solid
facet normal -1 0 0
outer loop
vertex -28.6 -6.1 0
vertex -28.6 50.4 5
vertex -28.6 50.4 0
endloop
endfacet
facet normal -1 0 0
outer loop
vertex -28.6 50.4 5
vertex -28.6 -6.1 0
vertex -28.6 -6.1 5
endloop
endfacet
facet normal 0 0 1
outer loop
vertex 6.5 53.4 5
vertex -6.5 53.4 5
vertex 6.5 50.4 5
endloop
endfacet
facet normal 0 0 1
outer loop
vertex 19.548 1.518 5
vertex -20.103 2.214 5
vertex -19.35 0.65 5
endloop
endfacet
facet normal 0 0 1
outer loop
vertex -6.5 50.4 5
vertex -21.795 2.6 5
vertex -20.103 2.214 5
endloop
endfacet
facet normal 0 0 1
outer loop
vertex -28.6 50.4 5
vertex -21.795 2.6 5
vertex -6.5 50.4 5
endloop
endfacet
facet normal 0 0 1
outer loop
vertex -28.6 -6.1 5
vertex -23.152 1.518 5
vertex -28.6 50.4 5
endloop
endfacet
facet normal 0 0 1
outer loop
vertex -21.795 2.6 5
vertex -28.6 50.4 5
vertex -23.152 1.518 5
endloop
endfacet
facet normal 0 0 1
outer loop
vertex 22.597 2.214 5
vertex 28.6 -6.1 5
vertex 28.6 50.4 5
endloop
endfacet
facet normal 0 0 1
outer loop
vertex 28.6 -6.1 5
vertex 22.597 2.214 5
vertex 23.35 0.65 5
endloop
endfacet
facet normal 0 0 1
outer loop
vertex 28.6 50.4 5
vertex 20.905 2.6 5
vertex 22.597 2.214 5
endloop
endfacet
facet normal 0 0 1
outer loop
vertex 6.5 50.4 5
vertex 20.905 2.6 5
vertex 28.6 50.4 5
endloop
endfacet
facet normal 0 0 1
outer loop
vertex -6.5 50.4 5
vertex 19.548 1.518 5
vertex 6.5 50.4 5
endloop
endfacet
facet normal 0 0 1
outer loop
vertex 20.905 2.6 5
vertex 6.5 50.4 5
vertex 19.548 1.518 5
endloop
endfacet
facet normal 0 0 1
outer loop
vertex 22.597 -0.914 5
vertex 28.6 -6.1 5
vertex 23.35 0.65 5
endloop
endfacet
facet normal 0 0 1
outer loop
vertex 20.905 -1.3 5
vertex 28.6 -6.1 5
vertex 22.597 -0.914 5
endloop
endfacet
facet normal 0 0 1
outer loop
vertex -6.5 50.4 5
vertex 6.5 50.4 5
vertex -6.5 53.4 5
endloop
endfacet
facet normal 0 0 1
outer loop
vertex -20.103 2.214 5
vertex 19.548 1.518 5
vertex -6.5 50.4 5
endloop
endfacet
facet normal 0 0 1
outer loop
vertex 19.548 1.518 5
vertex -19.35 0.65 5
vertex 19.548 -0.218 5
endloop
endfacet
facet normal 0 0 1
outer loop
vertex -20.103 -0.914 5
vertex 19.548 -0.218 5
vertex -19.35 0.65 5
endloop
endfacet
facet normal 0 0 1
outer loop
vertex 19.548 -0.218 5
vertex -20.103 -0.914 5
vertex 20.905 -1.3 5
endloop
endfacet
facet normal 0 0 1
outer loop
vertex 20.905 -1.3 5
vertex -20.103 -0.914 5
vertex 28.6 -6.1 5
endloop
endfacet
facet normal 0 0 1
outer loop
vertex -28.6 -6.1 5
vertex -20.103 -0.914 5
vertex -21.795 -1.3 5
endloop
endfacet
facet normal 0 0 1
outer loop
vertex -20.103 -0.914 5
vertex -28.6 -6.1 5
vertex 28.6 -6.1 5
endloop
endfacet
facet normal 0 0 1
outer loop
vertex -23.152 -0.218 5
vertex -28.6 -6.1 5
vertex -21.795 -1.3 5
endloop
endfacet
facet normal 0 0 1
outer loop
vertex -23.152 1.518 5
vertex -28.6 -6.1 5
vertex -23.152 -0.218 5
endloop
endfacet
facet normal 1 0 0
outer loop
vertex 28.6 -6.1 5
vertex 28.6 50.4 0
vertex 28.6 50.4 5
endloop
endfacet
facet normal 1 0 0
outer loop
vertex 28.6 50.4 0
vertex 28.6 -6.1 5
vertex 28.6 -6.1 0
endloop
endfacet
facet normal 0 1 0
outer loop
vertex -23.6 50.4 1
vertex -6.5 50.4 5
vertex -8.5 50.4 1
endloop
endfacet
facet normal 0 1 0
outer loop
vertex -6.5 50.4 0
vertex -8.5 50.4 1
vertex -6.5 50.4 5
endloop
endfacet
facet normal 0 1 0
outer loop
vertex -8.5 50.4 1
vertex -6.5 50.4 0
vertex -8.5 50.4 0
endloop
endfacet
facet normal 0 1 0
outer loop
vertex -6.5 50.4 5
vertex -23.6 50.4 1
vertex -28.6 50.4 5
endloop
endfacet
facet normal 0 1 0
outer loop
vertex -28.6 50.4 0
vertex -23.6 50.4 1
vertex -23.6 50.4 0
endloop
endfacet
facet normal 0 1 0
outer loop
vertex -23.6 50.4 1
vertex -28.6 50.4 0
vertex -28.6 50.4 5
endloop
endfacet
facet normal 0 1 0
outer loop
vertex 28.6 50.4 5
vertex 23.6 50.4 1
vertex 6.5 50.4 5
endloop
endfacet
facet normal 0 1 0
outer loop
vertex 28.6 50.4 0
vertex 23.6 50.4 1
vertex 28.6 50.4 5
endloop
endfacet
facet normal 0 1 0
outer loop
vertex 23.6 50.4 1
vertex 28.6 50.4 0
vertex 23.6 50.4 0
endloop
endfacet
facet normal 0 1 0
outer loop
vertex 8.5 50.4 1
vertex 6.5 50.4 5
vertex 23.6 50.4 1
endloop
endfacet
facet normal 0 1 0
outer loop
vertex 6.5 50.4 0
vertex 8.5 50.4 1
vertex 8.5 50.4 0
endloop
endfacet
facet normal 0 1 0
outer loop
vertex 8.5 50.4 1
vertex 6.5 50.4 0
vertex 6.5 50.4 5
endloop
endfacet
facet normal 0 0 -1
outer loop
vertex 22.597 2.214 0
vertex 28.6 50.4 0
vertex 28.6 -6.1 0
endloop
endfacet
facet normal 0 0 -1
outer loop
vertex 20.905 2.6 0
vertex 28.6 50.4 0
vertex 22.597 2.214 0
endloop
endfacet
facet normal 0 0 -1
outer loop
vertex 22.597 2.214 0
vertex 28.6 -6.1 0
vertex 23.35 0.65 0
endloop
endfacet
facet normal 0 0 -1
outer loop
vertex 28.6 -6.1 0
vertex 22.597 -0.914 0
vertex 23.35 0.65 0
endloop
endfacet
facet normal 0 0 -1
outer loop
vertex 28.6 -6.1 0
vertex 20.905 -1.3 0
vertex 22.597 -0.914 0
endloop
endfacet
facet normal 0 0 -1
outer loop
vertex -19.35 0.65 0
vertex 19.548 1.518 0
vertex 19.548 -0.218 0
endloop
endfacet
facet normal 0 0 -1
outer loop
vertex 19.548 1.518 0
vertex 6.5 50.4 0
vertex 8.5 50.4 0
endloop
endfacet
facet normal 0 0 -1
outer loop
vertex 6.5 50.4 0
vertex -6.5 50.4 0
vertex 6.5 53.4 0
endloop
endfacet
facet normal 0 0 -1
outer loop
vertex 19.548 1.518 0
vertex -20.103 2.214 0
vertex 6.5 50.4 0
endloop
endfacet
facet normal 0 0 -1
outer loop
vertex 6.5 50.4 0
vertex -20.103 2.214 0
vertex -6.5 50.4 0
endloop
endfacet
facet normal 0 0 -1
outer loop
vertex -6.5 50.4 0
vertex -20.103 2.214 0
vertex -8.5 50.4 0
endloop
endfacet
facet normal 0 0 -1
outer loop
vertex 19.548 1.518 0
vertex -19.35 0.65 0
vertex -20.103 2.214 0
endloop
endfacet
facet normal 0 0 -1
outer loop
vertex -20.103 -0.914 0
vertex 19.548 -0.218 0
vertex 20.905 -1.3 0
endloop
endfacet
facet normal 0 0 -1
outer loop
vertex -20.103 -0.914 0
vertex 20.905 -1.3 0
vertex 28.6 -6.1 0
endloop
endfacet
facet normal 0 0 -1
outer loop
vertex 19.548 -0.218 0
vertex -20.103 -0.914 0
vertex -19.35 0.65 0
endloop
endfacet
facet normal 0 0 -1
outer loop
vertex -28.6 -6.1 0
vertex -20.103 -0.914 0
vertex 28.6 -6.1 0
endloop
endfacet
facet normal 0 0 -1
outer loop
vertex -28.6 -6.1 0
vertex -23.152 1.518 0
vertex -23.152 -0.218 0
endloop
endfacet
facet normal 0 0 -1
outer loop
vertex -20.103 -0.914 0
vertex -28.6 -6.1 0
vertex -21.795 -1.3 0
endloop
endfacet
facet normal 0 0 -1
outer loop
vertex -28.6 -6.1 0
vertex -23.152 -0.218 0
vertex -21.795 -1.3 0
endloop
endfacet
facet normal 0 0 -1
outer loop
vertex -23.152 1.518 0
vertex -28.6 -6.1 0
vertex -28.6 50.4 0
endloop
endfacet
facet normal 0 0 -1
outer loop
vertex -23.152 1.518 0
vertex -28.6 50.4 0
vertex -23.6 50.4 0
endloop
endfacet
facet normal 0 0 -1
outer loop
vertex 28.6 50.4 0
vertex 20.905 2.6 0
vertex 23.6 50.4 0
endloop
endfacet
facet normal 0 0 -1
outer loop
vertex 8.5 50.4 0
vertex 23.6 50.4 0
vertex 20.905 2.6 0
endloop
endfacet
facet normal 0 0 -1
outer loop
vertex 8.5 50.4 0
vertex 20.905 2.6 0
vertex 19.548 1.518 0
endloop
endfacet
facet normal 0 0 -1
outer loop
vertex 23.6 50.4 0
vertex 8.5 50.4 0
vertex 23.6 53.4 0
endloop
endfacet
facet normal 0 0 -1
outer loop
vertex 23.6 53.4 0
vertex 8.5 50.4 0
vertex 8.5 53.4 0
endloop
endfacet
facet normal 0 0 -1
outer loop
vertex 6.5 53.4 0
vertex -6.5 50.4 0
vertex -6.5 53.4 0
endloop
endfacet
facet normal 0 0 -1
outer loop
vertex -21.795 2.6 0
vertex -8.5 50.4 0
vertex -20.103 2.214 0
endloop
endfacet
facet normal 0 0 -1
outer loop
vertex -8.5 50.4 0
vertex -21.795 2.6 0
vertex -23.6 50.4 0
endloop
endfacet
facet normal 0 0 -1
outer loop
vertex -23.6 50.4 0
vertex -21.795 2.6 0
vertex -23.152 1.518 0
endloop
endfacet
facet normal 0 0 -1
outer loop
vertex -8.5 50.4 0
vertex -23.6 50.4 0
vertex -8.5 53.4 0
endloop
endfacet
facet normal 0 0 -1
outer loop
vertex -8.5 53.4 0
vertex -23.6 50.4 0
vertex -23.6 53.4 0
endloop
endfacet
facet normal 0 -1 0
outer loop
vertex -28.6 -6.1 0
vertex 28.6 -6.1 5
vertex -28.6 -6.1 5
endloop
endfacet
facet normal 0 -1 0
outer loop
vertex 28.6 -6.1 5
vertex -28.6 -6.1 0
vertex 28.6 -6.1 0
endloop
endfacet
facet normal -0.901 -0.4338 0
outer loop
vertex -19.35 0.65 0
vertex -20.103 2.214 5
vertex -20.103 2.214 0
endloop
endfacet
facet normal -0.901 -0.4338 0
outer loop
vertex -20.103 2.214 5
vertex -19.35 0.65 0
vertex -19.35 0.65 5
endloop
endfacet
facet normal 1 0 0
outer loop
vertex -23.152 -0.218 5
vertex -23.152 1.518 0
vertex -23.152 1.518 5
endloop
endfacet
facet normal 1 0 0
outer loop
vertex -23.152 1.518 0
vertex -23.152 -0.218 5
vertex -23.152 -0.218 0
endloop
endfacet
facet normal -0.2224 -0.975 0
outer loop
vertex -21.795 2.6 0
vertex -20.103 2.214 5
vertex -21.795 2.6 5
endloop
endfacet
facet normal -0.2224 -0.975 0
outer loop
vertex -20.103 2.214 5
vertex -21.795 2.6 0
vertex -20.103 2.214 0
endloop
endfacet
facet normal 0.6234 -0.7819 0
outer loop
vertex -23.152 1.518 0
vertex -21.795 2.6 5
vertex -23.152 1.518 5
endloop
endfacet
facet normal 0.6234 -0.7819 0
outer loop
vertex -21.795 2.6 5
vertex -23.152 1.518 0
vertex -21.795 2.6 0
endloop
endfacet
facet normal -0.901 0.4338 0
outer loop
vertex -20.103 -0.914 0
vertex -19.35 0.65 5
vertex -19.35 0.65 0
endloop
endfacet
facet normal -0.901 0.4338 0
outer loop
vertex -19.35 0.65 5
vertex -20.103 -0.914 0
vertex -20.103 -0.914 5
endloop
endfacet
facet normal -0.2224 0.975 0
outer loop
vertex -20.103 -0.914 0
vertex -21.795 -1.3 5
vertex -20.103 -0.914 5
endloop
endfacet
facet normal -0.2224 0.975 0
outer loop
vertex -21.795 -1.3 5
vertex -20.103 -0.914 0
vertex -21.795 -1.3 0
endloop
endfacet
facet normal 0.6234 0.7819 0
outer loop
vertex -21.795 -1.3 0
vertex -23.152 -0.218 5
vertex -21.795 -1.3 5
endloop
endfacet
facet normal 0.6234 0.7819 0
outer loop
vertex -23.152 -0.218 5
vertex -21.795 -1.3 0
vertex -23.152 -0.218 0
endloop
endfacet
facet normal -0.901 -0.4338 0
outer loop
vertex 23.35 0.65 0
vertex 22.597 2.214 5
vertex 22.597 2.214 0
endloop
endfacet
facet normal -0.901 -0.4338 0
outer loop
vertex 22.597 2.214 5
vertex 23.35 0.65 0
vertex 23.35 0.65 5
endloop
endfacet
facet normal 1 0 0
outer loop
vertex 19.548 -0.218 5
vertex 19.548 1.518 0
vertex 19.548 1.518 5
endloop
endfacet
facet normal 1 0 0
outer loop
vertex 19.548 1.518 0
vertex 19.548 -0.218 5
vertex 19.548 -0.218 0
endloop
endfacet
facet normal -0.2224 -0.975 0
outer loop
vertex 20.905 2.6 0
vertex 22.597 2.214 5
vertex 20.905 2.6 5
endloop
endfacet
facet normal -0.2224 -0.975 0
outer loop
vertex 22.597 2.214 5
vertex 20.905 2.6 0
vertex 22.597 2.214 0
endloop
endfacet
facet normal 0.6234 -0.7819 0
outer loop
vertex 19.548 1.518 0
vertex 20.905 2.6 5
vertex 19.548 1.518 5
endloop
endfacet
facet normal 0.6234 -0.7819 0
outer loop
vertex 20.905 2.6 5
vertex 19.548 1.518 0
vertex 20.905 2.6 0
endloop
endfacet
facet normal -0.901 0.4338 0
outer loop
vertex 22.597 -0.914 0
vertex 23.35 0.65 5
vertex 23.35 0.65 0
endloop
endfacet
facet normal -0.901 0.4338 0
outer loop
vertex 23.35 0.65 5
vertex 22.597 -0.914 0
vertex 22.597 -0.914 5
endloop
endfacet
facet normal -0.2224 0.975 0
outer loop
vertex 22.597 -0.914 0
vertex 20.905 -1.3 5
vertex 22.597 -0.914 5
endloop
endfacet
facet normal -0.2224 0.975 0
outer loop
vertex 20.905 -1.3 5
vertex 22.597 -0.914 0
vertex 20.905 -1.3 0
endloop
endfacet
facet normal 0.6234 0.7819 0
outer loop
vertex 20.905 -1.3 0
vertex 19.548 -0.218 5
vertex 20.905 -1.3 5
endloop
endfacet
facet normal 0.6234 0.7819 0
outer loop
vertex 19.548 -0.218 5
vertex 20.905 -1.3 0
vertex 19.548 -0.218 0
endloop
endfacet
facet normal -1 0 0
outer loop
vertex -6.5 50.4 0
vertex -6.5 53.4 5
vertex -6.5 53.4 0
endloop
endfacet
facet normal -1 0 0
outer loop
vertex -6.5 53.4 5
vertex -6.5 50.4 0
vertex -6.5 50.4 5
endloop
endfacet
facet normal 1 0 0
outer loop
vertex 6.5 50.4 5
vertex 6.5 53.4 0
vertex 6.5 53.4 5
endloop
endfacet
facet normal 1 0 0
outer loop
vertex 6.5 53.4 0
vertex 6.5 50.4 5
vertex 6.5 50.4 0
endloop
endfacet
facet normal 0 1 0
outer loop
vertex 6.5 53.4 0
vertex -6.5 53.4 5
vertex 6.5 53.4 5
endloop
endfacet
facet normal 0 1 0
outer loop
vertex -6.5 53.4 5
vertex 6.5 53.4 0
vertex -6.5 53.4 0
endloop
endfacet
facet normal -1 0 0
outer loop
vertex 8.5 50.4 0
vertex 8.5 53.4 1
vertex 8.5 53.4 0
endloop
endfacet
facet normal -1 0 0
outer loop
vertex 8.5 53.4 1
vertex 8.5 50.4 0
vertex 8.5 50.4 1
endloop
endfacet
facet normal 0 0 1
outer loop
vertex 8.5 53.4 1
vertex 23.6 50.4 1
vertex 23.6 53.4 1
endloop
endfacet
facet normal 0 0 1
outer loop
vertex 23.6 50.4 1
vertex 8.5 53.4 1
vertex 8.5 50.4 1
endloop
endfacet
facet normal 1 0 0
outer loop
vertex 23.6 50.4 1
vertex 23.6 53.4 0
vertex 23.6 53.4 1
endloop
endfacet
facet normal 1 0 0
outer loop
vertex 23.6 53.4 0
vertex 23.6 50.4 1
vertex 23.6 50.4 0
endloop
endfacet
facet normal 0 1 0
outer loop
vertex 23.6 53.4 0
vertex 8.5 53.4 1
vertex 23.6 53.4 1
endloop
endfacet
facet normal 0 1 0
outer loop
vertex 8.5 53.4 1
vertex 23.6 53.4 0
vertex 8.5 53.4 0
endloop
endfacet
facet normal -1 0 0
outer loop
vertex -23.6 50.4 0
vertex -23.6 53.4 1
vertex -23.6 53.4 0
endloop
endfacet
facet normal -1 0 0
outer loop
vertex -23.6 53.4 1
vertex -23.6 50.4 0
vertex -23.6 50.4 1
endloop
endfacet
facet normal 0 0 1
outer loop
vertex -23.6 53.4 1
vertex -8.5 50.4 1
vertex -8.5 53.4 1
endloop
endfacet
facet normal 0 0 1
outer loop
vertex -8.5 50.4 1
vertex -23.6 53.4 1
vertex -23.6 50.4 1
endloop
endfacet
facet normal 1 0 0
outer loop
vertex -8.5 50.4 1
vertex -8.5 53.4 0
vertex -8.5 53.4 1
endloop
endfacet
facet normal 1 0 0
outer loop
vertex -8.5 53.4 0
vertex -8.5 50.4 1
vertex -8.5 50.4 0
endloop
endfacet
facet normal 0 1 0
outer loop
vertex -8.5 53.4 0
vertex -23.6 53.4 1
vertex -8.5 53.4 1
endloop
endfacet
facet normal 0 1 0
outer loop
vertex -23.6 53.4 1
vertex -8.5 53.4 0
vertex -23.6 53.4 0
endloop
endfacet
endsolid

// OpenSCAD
front_post_hole_offset = 24.7;
front_post_to_pcb_front = 3.6;
front_to_rear_post_hole_offset = 30.5;

panel_depth = 3;  // The width of the case front/back/sides
panel_offset = max(0.5, panel_depth-3);
post_height = 2.5;

// Constants associated with the case lid
rear_tab_height = 2;  // The height of the tab that will lock the lid in place
rear_tab_height_offset = 1; // How much additional clearance to give the tab
tab_side_clearance = 2; // How much clearance to give each side of the tab

pcb_width = 31.6; // Width of the actual PCB (should be greater than front_post_hole_offset)
pcb_depth = 38+6; // Depth of the actual PCB (should be greater than front_to_rear_post_hole_offset);
pcb_height = 1.6; // Height of the PCB fiberglass (part of the RJ-11 offset)

rj_11_width = 17; // Width of the RJ-11 jack (for the hole in the front of the case)
rj_11_height = 13.5+.3; // Height of the RJ-11 jack (for the hole in the front of the case)

exit_hole_width = 13; // Width of the exit hole (in the back of the case)

case_interior_width = pcb_width + 19.6; // Giving 10mm of clearance on either side for wiring, etc. 
case_interior_depth = pcb_depth + 10; // All additional depth is added to the back
case_interior_height = post_height+rj_11_height+pcb_height+5; // This should be equal to post_height + enough room for the RJ-11 jack at a minimum

zip_tie_width = 3.5;


////// These are defined based on the above. Breaking out to make it more explicit what is happening below)
case_exterior_width = case_interior_width + (panel_depth * 2);
case_exterior_depth = case_interior_depth + (panel_depth * 2);
case_exterior_height = case_interior_height + panel_depth;

// Related to the case lid
case_lid_depth = rear_tab_height + rear_tab_height_offset + 2;
tab_width = (case_exterior_width - exit_hole_width - (2*panel_depth) - (4*tab_side_clearance))/2;


// Related to the "nut slot" posts
nut_width = 5.5;
nut_height = 2.5;
nut_post_width = nut_width + 3;
nut_hole_height = nut_height + 1.2;
nut_hole_width = nut_width + 1;
nut_hole_depth = (nut_post_width-nut_width)/2 + nut_width;
nut_hole_height_loc = case_exterior_height - 3 - nut_hole_height;
nut_hole_width_loc = (nut_post_width - nut_hole_width)/2;



module make_nut_post() {
        translate([nut_post_width/2,nut_post_width/2,-1]) cylinder(r=2, h=3*case_lid_depth);
}


to_back_of_lid = -(front_post_to_pcb_front+panel_depth)+0.5 +case_exterior_depth-panel_depth-0.5;
difference () {
    translate([-case_exterior_width/2,-(front_post_to_pcb_front+panel_depth)+0.5,0]) cube([case_exterior_width, case_exterior_depth-panel_depth-0.5, case_lid_depth]);
    translate([-(case_exterior_width/2)+panel_depth,-(front_post_to_pcb_front),-0.1]) make_nut_post();
    translate([(case_exterior_width/2)-panel_depth-nut_post_width,-(front_post_to_pcb_front),-0.1]) make_nut_post();
}

translate([-(exit_hole_width/2),to_back_of_lid,0]) cube([exit_hole_width, panel_depth, case_lid_depth]);
translate([case_exterior_width/2-tab_width-panel_depth-tab_side_clearance,to_back_of_lid,0]) cube([tab_width,panel_depth,rear_tab_height-1]);
translate([-(case_exterior_width/2)+panel_depth+tab_side_clearance,to_back_of_lid,0]) cube([tab_width,panel_depth,rear_tab_height-1]);
